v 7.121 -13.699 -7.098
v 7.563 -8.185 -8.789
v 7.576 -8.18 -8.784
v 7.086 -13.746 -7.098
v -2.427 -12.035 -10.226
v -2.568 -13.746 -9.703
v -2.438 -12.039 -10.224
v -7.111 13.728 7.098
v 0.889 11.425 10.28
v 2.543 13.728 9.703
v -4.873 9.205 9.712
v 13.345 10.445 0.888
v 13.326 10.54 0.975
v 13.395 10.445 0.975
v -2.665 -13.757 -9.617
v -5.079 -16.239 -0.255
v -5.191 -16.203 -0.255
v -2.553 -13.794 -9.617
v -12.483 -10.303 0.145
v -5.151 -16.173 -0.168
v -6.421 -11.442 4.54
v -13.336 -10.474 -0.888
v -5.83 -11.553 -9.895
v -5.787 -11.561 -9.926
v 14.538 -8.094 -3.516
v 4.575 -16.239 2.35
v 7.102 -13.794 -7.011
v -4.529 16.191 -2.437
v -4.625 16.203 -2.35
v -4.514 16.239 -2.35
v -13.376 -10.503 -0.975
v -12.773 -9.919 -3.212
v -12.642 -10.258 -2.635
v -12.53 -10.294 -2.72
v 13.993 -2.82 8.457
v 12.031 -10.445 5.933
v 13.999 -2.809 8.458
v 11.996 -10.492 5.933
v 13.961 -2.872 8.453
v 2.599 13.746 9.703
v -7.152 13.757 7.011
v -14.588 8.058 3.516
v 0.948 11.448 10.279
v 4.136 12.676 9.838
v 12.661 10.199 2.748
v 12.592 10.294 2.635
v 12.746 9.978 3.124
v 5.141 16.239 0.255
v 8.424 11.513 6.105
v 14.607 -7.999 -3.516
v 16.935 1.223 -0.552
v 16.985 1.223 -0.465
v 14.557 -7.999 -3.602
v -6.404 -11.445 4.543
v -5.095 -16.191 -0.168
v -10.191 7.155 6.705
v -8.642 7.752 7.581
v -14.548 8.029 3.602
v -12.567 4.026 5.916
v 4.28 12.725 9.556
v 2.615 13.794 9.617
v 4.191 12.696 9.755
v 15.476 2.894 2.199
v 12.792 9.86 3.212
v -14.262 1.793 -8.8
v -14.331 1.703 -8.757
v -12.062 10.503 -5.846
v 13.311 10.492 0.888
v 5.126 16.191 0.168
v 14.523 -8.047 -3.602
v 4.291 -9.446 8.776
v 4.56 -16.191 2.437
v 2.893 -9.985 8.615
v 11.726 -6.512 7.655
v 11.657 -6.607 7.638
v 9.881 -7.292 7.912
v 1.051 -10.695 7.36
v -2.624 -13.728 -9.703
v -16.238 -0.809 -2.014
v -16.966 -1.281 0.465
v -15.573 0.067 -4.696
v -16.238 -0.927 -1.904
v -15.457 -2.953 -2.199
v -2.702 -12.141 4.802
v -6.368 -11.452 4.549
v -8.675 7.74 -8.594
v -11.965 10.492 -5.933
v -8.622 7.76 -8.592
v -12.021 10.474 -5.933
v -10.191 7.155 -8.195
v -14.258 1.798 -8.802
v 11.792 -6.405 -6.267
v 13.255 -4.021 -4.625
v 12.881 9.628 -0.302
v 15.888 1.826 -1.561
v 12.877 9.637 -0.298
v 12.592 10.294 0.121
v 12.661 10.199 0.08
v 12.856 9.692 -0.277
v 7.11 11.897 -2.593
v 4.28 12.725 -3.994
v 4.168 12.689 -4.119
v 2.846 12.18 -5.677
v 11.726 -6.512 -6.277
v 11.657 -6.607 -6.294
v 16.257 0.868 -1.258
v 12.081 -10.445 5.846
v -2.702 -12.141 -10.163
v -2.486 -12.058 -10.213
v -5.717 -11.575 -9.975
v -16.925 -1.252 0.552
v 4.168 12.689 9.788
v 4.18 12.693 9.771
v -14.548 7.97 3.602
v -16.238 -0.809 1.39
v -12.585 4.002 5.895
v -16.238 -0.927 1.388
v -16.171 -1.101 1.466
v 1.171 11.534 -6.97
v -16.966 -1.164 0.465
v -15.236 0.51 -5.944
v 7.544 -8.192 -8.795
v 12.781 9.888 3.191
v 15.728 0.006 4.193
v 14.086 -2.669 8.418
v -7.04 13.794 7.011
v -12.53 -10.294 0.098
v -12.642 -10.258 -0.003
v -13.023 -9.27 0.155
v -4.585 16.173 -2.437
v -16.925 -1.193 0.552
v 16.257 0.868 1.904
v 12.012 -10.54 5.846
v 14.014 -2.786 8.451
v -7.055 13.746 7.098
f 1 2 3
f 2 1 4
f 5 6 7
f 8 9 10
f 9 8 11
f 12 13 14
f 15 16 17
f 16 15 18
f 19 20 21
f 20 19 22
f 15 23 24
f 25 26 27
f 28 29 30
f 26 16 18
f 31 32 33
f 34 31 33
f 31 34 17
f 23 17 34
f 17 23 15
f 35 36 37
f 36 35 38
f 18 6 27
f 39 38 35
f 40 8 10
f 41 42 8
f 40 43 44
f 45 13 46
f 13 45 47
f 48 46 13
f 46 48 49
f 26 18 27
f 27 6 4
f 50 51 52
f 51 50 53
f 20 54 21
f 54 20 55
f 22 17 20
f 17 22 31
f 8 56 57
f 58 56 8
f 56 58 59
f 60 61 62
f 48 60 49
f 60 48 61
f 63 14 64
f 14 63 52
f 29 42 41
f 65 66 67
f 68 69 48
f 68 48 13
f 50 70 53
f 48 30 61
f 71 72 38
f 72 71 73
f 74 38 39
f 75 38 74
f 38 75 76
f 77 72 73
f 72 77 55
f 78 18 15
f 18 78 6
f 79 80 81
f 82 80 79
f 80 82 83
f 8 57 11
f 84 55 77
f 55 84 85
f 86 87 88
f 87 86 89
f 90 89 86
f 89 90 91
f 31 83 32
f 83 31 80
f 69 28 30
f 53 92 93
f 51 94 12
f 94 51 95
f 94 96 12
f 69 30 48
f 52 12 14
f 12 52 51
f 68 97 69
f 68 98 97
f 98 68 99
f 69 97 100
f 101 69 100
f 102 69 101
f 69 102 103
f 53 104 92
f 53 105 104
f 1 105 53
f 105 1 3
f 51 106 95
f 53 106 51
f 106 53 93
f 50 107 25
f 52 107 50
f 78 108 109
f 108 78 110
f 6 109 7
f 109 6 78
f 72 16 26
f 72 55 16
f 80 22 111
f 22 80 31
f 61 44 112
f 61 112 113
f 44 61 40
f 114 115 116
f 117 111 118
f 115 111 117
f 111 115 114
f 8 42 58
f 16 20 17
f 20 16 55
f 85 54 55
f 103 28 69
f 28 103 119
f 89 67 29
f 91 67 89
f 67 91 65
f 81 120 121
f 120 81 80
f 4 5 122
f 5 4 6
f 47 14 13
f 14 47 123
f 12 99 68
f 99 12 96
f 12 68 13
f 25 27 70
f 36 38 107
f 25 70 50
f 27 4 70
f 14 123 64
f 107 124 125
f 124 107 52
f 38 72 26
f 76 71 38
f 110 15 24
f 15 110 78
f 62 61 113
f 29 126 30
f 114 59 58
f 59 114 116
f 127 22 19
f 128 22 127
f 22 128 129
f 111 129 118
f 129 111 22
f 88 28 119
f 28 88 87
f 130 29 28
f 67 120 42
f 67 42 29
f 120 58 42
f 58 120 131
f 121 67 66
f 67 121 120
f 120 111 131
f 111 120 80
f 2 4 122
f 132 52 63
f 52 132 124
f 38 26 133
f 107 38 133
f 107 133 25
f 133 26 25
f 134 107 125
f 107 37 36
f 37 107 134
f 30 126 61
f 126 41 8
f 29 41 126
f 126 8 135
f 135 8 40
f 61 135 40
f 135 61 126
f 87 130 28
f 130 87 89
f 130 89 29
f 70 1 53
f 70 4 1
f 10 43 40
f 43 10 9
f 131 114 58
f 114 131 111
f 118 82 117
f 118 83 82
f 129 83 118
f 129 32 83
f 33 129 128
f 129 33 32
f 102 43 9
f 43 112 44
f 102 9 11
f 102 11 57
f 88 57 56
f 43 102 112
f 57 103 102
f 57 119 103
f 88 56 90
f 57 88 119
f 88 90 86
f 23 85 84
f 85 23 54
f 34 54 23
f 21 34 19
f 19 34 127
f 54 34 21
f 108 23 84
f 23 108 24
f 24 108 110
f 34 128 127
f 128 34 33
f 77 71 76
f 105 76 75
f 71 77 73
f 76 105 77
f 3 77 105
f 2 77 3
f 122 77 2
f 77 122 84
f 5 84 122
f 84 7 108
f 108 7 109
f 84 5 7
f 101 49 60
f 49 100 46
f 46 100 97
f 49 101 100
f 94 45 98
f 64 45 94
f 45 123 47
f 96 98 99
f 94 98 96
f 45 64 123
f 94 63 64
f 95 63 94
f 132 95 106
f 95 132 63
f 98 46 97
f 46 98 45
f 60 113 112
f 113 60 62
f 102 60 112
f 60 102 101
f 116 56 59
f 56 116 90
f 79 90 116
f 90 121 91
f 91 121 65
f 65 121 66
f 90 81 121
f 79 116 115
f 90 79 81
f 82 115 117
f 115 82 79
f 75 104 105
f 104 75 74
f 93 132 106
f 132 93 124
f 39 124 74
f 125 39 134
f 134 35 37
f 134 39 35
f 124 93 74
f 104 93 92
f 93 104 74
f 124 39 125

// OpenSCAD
// Auto-generated OpenSCAD file

    inner_points = 10*[[-1.6157030013132576, -0.08682050620151305, 0.5000000000001401], [-1.256099372783235, -1.0199256612339145, 0.5000000000000209], [1.256099372783235, 1.0199256612339145, -0.5000000000000209], [1.6157030013132576, 0.08682050620151305, -0.5000000000001401], [-1.067237552347056, 0.12454920331922015, 1.3090169943750567], [-0.7076339238170337, -0.8085559517131813, 1.3090169943749375], [-1.615703001313349, -0.08682050620142057, -0.4999999999998599], [-1.2560993727833267, -1.019925661233822, -0.49999999999997924], [1.2560993727833267, 1.019925661233822, 0.49999999999997924], [1.615703001313349, 0.08682050620142057, 0.4999999999998599], [0.7076339238170337, 0.8085559517131813, -1.3090169943749375], [1.067237552347056, -0.12454920331922015, -1.3090169943750567], [-0.17980181426486283, 0.466552577516051, 1.6180339887499544], [0.17980181426515948, -0.46655257751635026, 1.6180339887498354], [-1.0672375523472961, 0.12454920331946218, -1.3090169943748382], [-0.7076339238172737, -0.808555951712939, -1.3090169943749572], [0.7076339238172737, 0.808555951712939, 1.3090169943749572], [1.0672375523472961, -0.12454920331946218, 1.3090169943748382], [-0.17980181426515948, 0.46655257751635026, -1.6180339887498354], [0.17980181426486283, -0.466552577516051, -1.6180339887499544], [-1.0110111624566542, 0.7096390219731582, 0.5000000000001583], [-0.273297902828303, -1.2045909548178053, 0.4999999999999137], [0.4248900245915921, 1.2630121056908719, 7.782663402622347e-14], [1.1626032842199434, -0.6512178711000915, -1.6681100944992977e-13], [-1.011011162456746, 0.7096390219732508, -0.4999999999998417], [-0.2732979028283946, -1.2045909548177127, -0.5000000000000864], [-0.1235754243746093, 1.0516423961701389, -0.8090169943748389], [0.6141378352537419, -0.8625875806208246, -0.8090169943750836], [-0.12357542437446101, 1.0516423961699892, 0.809016994375056], [0.6141378352538901, -0.8625875806209743, 0.8090169943748112]];

    outer_points = 10*[[1.4358365361613323, -0.12226738097965391, 0.8896393188941789], [1.6884671298168779, 0.12226738097965391, -0.04651266307389418], [-1.6884671298168779, -0.12226738097965391, 0.04651266307389418], [-1.4358365361613323, 0.12226738097965391, -0.8896393188941789], [1.076899131358998, 0.7999155599973826, 1.0336621046077892], [1.3295297250145435, 1.0444503219566905, 0.09751012263971623], [1.1980850363497777, -1.0444503219566905, 0.5845936703294112], [1.4507156300053232, -0.7999155599973826, -0.35155831163866175], [-1.4507156300053232, 0.7999155599973826, 0.35155831163866175], [-1.1980850363497777, 1.0444503219566905, -0.5845936703294112], [-1.3295297250145435, -1.0444503219566905, -0.09751012263971623], [-1.076899131358998, -0.7999155599973826, -1.0336621046077892], [0.2583747107435867, 1.3698559613665295, 0.9616502184820862], [0.5110053043991324, 1.6143907233258374, 0.025498236514013117], [0.4544576239760838, -1.6143907233258374, 0.23504222854497203], [0.7070882176316295, -1.3698559613665295, -0.7011097534231011], [-0.7070882176316295, 1.3698559613665295, 0.7011097534231011], [-0.4544576239760838, 1.6143907233258374, -0.23504222854497203], [-0.5110053043991324, -1.6143907233258374, -0.025498236514013117], [-0.2583747107435867, -1.3698559613665295, -0.9616502184820862], [0.5051973765349485, 0.004058182780676878, 1.233081608821516], [1.023459496106188, 0.5057120094532936, -0.6873988183317695], [-1.0569544564541566, 0.004058182780676878, 0.8115182809113736], [-0.538692336882917, 0.5057120094532936, -1.108962146241912], [0.2674458767233939, -0.9181247581963599, 0.9280359602567483], [0.7857079962946336, -0.416470931523743, -0.9924444668965372], [-0.6980170516518223, -0.9181247581963599, 0.6674954951977632], [-0.17975493208058263, -0.416470931523743, -1.2529849319555224], [-0.3133270440804627, 0.5739985841498236, 1.1610697226958127], [0.2049350754907769, 1.0756524108224406, -0.7594107044574727]];

    // Convex hull for inner set (I)
    module inner_hull() {
        hull() {
            for (p = inner_points) {
                translate(p) sphere(r=0.1);
            }
        }
    }

    // Convex hull for outer set (O) minus inner hull (O \ I)
    module outer_minus_inner() {
        difference() {
            hull() {
                for (p = outer_points) {
                    translate(p) sphere(r=0.1);
                }
            }
            inner_hull(); // Subtract inner hull
        }
    }

    // Convex hull for outer set (O) minus all translated inner hulls
    module outer_minus_AllTranslationInner() {
        difference() {
            hull() {
                for (p = outer_points) {
                    translate(p) sphere(r=0.1);
                }
            }
            hull() {
                translate([0,0,50]) inner_hull();
                translate([0,0,-50]) inner_hull();
            }; // Subtract translated inner hulls
        }
    }

    // Difference between outer_minus_inner and outer_minus_AllTranslationInner
    module outer_minus_inner_diff() {
        difference() {
            // Outer minus inner
            difference() {
                hull() {
                    for (p = outer_points) {
                        translate(p) sphere(r=0.1);
                    }
                }
                inner_hull();
            }

            // Subtract Outer minus AllTranslationInner
            difference() {
                hull() {
                    for (p = outer_points) {
                        translate(p) sphere(r=0.1);
                    }
                }
                hull() {
                    translate([0,0,50]) inner_hull();
                    translate([0,0,-50]) inner_hull();
                };
            }
        }
    }

    // Rendering all with colors applied
    color([0, 1, 0, 1]) outer_minus_AllTranslationInner(); // Opaque green
    
